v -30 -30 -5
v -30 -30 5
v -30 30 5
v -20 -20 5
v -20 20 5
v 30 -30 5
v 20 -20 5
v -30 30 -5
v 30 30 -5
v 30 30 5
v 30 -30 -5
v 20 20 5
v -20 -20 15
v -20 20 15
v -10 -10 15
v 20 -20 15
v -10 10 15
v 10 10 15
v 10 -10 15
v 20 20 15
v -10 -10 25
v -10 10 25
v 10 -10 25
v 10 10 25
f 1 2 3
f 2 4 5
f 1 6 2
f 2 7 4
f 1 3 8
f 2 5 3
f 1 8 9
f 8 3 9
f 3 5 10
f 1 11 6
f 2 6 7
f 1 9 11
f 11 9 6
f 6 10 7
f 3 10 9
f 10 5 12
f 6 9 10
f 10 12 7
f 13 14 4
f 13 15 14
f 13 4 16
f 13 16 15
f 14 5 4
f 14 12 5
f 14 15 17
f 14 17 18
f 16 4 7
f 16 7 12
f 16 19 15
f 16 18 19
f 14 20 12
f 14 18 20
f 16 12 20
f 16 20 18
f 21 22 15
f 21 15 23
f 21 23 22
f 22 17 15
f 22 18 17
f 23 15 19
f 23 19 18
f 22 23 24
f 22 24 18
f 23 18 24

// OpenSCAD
// 3段の階段状ピラミッド

// 底辺（1段目）: 60mm × 60mm × 10mm
translate([0, 0, 0])
    cube([60, 60, 10], center=true);

// 2段目: 40mm × 40mm × 10mm
translate([0, 0, 10])
    cube([40, 40, 10], center=true);

// 3段目（最上段）: 20mm × 20mm × 10mm
translate([0, 0, 20])
    cube([20, 20, 10], center=true);
